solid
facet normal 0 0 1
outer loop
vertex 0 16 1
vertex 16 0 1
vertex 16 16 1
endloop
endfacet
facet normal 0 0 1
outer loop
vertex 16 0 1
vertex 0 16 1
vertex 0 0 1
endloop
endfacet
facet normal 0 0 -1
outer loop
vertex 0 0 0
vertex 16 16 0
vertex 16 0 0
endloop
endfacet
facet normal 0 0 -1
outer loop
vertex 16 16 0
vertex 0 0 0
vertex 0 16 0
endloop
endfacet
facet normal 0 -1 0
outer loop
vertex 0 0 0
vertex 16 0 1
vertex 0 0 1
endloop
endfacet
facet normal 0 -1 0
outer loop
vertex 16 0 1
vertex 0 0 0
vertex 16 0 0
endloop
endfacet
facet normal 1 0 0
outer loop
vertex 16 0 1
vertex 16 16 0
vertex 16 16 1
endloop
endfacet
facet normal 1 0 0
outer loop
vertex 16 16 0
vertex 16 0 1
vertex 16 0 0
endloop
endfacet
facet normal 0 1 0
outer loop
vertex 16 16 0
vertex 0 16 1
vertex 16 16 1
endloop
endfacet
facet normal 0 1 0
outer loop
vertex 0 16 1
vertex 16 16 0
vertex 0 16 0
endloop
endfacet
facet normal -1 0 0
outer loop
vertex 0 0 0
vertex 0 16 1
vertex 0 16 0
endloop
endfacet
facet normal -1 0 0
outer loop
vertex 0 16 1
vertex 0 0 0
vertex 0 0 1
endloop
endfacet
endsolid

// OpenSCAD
/* Warning, this is a very basic generator with a lot of approximation 
input data : [TQFP, 8XW, 16x16x1.0mm, 144, , A, C04-00676A]
generated by com.zoubworld.electronics.cad.model3d.Basic
Date : Sun Feb 15 10:50:49 CET 2026
*/

//body
color("black")
translate([0,0,0])
cube([16.0,16.0,1.0], center=false);
